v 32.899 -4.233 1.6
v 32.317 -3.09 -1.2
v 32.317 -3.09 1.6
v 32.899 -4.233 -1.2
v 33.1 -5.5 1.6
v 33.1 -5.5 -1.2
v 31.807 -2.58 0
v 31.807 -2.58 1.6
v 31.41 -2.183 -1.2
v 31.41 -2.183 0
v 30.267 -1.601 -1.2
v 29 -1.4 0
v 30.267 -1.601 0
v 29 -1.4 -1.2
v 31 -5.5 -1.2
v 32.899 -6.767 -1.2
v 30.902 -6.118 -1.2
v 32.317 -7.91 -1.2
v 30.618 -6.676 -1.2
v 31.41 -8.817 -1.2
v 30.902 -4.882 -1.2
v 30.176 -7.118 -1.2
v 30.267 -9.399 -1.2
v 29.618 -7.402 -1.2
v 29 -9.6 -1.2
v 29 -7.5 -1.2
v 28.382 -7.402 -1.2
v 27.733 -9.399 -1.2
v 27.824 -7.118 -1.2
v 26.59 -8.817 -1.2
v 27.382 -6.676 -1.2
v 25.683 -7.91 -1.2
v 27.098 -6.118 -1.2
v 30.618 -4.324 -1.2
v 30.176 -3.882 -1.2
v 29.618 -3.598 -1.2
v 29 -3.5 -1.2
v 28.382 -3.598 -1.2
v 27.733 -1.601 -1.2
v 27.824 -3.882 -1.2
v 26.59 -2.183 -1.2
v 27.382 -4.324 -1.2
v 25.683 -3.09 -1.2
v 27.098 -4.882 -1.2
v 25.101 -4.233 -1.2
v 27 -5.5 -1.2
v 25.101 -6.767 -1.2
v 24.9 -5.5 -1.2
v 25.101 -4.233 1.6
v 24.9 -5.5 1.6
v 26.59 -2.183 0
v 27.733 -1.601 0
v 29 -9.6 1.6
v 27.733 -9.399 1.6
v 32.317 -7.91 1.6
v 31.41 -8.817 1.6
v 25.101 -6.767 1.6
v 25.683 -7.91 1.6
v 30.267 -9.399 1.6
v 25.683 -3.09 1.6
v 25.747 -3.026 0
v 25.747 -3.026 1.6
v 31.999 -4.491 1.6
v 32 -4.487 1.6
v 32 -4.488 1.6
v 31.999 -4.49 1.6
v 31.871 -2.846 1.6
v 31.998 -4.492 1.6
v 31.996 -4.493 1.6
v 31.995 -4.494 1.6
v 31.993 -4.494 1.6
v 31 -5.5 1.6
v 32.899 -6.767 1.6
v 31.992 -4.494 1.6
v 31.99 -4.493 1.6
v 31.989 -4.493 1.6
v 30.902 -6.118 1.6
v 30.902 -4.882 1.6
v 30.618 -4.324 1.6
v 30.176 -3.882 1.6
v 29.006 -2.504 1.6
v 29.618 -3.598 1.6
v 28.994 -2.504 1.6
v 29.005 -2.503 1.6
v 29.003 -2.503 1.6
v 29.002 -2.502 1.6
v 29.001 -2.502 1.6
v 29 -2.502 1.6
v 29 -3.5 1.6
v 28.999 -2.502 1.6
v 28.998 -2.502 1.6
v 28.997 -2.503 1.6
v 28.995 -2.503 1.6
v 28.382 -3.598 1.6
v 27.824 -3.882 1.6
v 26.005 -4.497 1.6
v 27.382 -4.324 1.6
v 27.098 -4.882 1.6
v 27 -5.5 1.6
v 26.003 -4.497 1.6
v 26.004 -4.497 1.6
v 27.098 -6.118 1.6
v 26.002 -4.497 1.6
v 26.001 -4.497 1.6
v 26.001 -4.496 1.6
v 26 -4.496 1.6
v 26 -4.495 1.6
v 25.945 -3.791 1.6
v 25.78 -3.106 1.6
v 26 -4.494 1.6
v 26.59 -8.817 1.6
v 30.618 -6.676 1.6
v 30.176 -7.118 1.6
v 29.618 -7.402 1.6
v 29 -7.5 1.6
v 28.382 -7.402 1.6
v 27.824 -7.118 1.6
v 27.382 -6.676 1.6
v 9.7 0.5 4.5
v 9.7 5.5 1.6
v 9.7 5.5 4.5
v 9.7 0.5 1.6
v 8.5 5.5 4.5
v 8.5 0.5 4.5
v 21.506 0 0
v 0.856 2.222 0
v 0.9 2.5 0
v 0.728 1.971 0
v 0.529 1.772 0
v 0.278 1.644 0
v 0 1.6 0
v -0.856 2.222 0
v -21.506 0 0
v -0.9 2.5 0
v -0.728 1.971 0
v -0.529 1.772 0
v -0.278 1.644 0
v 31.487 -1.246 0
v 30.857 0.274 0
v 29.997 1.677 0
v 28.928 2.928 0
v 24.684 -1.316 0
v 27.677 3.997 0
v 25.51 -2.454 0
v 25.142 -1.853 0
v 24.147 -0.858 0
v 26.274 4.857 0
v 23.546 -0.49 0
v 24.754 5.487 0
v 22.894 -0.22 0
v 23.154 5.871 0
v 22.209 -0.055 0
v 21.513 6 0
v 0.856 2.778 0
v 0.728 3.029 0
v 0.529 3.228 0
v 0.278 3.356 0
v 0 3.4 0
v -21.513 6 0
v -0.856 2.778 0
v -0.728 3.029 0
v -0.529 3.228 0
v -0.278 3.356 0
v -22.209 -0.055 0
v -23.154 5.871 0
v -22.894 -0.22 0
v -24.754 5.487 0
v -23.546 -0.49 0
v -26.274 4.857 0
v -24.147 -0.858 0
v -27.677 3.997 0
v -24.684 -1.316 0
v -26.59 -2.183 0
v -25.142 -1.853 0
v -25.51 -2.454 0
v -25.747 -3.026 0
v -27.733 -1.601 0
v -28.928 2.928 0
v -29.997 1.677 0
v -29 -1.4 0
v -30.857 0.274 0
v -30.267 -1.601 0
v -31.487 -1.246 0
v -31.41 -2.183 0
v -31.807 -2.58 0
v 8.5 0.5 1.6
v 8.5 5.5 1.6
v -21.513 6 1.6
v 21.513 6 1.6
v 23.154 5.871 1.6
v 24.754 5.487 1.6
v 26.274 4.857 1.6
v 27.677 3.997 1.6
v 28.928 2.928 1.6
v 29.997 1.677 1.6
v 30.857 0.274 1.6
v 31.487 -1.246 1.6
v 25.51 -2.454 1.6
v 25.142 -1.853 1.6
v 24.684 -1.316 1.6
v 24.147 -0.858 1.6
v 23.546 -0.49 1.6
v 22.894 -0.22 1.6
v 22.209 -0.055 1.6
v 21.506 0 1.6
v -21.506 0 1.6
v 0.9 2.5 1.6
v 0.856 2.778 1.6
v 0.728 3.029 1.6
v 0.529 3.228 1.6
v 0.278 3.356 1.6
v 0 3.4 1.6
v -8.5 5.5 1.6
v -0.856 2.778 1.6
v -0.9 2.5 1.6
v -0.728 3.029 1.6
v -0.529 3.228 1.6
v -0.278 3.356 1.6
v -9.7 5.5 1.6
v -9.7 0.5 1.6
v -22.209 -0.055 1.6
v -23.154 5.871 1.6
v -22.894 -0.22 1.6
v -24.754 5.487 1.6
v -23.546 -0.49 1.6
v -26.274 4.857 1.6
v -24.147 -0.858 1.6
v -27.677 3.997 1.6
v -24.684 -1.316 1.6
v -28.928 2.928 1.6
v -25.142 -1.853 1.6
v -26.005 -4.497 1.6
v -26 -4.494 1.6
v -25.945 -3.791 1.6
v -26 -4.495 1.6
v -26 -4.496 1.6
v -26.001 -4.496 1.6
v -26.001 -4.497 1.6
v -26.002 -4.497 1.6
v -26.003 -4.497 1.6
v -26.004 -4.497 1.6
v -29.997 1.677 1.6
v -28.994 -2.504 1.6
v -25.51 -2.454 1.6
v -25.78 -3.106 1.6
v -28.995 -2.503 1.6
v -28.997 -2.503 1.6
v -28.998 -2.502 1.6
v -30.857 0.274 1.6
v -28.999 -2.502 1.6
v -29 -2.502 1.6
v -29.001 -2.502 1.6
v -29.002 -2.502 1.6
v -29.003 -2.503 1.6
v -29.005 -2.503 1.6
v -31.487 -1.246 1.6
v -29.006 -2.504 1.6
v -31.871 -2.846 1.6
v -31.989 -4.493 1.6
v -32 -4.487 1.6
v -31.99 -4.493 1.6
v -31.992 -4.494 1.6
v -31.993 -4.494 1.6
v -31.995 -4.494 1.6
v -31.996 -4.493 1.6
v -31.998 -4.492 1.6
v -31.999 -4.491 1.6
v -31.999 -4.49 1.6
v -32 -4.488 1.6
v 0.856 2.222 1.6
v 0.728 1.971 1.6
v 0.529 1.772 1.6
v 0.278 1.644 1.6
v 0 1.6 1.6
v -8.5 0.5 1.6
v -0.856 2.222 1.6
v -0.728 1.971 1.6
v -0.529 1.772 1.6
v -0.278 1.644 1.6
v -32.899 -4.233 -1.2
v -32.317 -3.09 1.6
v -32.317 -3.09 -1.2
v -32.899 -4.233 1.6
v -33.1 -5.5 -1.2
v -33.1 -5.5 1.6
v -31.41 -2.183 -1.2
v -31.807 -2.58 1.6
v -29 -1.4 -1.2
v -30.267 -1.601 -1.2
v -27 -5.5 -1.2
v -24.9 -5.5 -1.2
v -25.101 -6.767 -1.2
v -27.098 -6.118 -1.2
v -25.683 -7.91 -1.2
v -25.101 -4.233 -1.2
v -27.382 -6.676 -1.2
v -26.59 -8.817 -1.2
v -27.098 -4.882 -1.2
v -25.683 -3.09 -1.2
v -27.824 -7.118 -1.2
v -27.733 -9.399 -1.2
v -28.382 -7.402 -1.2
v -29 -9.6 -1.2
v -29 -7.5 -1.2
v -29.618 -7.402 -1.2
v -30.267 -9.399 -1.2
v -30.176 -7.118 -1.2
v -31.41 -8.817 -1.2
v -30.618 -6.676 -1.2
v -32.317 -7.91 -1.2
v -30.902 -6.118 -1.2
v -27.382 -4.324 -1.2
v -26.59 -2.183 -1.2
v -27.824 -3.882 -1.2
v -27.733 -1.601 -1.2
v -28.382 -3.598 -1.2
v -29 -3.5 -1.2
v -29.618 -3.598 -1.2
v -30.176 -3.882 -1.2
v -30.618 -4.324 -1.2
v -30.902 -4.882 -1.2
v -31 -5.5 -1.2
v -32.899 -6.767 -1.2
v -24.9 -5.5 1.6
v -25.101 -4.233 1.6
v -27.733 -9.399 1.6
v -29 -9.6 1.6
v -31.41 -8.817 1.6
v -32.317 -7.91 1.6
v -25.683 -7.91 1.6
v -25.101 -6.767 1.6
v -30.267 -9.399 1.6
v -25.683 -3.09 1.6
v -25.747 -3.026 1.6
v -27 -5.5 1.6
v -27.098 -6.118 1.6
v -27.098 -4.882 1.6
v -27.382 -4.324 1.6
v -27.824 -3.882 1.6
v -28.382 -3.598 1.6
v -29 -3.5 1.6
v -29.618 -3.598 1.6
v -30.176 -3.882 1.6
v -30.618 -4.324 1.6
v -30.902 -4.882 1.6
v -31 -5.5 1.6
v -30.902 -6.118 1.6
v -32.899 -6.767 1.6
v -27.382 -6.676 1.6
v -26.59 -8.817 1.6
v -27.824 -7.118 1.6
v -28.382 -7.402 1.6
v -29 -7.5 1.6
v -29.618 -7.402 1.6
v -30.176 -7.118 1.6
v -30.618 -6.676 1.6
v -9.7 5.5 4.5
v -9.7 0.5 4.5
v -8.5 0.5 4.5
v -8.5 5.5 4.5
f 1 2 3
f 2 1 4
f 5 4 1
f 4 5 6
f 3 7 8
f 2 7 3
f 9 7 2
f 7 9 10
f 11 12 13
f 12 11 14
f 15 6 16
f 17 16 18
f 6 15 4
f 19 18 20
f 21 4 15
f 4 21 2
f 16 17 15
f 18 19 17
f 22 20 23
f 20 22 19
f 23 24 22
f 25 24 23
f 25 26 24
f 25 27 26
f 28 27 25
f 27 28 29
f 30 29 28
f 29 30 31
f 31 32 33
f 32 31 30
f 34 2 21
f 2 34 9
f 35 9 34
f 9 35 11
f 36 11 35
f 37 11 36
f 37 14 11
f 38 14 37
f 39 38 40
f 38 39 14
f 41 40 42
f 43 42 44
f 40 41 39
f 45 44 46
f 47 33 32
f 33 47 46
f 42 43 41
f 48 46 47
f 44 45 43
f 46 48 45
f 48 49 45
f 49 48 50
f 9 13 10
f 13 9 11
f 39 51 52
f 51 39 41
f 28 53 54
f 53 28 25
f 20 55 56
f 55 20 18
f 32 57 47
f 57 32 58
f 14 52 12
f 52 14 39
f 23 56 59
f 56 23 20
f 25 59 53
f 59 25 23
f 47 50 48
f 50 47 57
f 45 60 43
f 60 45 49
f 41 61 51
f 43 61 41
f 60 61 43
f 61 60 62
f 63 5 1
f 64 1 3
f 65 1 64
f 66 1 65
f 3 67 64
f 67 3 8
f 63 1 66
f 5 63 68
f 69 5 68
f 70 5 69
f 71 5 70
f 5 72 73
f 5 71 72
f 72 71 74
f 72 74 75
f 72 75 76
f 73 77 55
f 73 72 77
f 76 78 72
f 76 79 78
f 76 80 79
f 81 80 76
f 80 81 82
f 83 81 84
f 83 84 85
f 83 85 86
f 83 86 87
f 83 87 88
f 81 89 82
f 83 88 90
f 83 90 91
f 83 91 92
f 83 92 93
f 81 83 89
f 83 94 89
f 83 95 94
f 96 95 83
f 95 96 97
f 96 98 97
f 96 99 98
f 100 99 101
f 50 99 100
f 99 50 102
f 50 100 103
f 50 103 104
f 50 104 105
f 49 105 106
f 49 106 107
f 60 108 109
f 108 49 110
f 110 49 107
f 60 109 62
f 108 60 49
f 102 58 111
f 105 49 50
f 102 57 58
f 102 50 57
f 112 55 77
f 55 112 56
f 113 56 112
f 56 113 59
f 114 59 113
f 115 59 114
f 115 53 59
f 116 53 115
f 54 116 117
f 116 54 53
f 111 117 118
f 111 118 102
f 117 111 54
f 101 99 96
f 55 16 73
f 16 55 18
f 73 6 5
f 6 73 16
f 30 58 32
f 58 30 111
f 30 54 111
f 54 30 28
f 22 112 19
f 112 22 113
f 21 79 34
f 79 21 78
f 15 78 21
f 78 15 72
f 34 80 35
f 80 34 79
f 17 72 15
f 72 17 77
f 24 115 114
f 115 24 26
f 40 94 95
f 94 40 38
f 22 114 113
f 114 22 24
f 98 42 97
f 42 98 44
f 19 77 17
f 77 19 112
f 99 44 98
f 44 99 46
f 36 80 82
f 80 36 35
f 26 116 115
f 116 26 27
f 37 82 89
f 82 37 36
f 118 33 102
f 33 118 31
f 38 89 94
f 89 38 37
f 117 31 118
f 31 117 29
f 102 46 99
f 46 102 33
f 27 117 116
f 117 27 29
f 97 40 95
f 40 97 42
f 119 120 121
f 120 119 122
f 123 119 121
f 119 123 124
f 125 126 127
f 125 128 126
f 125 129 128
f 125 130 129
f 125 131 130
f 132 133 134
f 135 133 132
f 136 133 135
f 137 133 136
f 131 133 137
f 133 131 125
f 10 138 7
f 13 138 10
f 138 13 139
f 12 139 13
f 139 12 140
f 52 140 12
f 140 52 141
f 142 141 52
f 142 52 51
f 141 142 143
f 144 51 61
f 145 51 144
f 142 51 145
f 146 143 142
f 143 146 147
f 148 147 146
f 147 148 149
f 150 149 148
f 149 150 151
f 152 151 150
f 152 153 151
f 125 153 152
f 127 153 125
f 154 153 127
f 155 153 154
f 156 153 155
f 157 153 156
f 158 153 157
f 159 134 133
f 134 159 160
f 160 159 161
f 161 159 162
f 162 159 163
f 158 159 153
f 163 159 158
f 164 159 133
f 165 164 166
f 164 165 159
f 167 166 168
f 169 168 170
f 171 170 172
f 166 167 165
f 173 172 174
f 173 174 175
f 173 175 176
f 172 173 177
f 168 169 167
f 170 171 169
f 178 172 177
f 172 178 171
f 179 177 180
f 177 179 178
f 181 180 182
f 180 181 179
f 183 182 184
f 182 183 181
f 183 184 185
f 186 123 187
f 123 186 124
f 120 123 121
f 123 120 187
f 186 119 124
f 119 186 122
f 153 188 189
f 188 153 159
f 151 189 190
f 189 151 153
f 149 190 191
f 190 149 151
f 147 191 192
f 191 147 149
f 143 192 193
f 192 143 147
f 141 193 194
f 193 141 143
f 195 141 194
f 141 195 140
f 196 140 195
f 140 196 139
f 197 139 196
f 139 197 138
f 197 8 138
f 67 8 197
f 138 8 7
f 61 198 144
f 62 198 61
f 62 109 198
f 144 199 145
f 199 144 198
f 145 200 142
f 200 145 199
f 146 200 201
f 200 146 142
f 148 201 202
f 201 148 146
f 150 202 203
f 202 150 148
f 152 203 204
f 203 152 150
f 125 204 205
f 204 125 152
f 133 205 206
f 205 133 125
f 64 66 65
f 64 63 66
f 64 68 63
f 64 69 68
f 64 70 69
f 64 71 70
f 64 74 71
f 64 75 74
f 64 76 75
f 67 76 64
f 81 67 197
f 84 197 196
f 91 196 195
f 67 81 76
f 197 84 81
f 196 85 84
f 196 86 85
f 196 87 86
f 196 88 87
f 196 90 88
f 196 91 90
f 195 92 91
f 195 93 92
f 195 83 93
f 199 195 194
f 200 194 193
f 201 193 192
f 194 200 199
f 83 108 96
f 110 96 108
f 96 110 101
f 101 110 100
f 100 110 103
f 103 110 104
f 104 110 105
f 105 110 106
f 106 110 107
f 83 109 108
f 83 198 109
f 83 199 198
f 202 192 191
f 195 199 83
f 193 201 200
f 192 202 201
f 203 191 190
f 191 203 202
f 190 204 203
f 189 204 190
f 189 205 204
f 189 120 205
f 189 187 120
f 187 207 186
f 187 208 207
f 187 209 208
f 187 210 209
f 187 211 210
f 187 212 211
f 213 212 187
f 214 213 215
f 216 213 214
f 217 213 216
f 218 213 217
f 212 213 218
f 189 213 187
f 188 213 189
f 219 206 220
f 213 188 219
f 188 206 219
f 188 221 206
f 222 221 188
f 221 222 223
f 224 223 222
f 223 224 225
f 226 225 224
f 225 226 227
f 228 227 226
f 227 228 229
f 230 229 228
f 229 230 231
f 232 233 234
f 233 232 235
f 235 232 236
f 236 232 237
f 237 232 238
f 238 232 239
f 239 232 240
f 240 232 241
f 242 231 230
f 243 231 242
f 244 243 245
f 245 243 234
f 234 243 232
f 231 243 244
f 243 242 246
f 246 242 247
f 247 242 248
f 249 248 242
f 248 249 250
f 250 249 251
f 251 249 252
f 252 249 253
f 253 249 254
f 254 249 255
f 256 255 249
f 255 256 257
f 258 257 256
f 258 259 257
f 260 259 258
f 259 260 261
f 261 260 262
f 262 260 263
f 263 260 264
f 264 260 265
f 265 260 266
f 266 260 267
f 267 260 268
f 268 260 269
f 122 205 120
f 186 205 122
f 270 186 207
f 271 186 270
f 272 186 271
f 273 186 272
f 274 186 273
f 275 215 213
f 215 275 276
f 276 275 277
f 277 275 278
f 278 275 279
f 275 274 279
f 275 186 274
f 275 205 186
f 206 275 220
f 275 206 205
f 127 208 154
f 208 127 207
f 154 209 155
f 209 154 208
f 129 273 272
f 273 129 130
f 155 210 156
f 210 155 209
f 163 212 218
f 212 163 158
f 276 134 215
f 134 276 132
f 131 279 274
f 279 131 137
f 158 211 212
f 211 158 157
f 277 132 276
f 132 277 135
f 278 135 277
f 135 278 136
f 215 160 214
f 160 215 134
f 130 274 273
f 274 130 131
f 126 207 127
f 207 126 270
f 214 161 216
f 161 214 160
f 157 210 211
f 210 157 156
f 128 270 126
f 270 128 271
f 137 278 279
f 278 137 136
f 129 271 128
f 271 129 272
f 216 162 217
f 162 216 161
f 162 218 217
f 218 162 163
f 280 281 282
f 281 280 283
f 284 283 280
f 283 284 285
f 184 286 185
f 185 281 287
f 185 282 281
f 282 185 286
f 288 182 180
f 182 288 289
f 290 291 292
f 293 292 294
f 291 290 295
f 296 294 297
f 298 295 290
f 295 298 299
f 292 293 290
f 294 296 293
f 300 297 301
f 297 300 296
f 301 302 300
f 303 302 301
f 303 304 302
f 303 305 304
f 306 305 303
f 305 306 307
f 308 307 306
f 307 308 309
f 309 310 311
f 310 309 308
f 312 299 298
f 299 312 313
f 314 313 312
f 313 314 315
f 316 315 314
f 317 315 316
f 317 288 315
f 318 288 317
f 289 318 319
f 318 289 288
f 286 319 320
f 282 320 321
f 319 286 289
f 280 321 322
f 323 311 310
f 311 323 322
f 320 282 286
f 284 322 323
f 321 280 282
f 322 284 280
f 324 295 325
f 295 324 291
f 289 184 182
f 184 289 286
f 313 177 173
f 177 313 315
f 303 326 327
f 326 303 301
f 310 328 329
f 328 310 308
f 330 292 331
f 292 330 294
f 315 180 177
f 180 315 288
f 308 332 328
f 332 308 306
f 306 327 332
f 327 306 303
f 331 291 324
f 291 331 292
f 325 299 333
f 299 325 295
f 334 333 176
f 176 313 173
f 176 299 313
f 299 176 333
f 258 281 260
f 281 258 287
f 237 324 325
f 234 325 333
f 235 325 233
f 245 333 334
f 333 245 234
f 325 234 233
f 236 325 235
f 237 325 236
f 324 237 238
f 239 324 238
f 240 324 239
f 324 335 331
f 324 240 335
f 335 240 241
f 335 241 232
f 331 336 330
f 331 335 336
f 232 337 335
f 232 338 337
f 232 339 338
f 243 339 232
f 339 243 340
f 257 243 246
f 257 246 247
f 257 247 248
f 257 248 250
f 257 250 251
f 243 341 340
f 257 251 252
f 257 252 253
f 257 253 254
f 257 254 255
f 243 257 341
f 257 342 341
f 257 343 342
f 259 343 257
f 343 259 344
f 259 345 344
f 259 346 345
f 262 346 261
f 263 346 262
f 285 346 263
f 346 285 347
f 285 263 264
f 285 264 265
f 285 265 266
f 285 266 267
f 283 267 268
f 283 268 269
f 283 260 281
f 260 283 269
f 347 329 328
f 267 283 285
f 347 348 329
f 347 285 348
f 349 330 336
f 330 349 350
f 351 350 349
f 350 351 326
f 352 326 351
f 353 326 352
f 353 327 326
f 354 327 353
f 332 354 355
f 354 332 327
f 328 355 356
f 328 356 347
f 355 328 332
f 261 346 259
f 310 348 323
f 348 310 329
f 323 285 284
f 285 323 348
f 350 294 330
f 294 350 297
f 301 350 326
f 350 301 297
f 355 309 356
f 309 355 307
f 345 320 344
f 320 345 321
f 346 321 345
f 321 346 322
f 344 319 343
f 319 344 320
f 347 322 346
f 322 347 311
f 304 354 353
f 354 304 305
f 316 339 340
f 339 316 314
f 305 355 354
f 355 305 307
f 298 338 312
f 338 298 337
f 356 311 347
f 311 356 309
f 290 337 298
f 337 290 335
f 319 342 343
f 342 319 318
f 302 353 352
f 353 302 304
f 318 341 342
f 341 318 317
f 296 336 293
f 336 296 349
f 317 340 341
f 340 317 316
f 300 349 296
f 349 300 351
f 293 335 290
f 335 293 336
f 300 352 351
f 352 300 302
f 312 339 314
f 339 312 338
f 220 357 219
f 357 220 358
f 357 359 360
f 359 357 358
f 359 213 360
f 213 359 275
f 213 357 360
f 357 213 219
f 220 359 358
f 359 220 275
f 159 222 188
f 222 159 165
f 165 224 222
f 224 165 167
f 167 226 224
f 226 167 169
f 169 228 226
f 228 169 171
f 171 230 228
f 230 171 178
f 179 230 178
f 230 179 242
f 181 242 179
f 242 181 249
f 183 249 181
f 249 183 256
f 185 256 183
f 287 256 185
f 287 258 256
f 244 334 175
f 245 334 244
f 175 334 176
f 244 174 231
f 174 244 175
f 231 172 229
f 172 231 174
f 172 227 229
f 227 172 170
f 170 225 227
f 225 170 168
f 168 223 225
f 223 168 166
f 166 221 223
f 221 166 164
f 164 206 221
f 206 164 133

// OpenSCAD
include <Round-Anything/polyround.scad>

$fn=20;
circlediam=8.2;
stickwidth=6;
stickthick=1.6;
eyethick=2.8;
eyedistance=29;
eyeoffsetdown=-5.5;


union(){
    mirror([1,0,0]) rightside();
    rightside();
};

module rightside(){

    difference(){
        union(){
            // eyes on the side with holes in
            translate([eyedistance,eyeoffsetdown,-(eyethick-stickthick)])
                difference(){
                    cylinder(eyethick,d=circlediam);
                    #translate([0,0,-1])
                        cylinder(eyethick+2,d=4);
                }

            // standing up flat tower thingies
            towerinset=1;
            translate([8.5,towerinset/2,0]) cube([1.2,stickwidth-towerinset,4.5]);

            // flat stick thing
            // reallign: 2gLi], gli]]
            radiiPoints=[
                [-1,  0, 0 ],
                [eyedistance-stickwidth/2, 0, 15 ],
                [eyedistance-stickwidth/2, eyeoffsetdown+1, 0 ],
                [eyedistance, eyeoffsetdown+3, 0 ], // indent to get the curve out of the eye hole
                [eyedistance+stickwidth/2, eyeoffsetdown+1, 0 ],
                [eyedistance+stickwidth/2, stickwidth, 15 ],
                [-1,  stickwidth, 0 ],
            ];
                polyRoundExtrude(radiiPoints,stickthick,0,0);
        };

        // 1.8mm hole in the middle to put a nail in
        #translate([0,2.5,-1]) cylinder(stickthick+2,d=1.8);
    };
};
